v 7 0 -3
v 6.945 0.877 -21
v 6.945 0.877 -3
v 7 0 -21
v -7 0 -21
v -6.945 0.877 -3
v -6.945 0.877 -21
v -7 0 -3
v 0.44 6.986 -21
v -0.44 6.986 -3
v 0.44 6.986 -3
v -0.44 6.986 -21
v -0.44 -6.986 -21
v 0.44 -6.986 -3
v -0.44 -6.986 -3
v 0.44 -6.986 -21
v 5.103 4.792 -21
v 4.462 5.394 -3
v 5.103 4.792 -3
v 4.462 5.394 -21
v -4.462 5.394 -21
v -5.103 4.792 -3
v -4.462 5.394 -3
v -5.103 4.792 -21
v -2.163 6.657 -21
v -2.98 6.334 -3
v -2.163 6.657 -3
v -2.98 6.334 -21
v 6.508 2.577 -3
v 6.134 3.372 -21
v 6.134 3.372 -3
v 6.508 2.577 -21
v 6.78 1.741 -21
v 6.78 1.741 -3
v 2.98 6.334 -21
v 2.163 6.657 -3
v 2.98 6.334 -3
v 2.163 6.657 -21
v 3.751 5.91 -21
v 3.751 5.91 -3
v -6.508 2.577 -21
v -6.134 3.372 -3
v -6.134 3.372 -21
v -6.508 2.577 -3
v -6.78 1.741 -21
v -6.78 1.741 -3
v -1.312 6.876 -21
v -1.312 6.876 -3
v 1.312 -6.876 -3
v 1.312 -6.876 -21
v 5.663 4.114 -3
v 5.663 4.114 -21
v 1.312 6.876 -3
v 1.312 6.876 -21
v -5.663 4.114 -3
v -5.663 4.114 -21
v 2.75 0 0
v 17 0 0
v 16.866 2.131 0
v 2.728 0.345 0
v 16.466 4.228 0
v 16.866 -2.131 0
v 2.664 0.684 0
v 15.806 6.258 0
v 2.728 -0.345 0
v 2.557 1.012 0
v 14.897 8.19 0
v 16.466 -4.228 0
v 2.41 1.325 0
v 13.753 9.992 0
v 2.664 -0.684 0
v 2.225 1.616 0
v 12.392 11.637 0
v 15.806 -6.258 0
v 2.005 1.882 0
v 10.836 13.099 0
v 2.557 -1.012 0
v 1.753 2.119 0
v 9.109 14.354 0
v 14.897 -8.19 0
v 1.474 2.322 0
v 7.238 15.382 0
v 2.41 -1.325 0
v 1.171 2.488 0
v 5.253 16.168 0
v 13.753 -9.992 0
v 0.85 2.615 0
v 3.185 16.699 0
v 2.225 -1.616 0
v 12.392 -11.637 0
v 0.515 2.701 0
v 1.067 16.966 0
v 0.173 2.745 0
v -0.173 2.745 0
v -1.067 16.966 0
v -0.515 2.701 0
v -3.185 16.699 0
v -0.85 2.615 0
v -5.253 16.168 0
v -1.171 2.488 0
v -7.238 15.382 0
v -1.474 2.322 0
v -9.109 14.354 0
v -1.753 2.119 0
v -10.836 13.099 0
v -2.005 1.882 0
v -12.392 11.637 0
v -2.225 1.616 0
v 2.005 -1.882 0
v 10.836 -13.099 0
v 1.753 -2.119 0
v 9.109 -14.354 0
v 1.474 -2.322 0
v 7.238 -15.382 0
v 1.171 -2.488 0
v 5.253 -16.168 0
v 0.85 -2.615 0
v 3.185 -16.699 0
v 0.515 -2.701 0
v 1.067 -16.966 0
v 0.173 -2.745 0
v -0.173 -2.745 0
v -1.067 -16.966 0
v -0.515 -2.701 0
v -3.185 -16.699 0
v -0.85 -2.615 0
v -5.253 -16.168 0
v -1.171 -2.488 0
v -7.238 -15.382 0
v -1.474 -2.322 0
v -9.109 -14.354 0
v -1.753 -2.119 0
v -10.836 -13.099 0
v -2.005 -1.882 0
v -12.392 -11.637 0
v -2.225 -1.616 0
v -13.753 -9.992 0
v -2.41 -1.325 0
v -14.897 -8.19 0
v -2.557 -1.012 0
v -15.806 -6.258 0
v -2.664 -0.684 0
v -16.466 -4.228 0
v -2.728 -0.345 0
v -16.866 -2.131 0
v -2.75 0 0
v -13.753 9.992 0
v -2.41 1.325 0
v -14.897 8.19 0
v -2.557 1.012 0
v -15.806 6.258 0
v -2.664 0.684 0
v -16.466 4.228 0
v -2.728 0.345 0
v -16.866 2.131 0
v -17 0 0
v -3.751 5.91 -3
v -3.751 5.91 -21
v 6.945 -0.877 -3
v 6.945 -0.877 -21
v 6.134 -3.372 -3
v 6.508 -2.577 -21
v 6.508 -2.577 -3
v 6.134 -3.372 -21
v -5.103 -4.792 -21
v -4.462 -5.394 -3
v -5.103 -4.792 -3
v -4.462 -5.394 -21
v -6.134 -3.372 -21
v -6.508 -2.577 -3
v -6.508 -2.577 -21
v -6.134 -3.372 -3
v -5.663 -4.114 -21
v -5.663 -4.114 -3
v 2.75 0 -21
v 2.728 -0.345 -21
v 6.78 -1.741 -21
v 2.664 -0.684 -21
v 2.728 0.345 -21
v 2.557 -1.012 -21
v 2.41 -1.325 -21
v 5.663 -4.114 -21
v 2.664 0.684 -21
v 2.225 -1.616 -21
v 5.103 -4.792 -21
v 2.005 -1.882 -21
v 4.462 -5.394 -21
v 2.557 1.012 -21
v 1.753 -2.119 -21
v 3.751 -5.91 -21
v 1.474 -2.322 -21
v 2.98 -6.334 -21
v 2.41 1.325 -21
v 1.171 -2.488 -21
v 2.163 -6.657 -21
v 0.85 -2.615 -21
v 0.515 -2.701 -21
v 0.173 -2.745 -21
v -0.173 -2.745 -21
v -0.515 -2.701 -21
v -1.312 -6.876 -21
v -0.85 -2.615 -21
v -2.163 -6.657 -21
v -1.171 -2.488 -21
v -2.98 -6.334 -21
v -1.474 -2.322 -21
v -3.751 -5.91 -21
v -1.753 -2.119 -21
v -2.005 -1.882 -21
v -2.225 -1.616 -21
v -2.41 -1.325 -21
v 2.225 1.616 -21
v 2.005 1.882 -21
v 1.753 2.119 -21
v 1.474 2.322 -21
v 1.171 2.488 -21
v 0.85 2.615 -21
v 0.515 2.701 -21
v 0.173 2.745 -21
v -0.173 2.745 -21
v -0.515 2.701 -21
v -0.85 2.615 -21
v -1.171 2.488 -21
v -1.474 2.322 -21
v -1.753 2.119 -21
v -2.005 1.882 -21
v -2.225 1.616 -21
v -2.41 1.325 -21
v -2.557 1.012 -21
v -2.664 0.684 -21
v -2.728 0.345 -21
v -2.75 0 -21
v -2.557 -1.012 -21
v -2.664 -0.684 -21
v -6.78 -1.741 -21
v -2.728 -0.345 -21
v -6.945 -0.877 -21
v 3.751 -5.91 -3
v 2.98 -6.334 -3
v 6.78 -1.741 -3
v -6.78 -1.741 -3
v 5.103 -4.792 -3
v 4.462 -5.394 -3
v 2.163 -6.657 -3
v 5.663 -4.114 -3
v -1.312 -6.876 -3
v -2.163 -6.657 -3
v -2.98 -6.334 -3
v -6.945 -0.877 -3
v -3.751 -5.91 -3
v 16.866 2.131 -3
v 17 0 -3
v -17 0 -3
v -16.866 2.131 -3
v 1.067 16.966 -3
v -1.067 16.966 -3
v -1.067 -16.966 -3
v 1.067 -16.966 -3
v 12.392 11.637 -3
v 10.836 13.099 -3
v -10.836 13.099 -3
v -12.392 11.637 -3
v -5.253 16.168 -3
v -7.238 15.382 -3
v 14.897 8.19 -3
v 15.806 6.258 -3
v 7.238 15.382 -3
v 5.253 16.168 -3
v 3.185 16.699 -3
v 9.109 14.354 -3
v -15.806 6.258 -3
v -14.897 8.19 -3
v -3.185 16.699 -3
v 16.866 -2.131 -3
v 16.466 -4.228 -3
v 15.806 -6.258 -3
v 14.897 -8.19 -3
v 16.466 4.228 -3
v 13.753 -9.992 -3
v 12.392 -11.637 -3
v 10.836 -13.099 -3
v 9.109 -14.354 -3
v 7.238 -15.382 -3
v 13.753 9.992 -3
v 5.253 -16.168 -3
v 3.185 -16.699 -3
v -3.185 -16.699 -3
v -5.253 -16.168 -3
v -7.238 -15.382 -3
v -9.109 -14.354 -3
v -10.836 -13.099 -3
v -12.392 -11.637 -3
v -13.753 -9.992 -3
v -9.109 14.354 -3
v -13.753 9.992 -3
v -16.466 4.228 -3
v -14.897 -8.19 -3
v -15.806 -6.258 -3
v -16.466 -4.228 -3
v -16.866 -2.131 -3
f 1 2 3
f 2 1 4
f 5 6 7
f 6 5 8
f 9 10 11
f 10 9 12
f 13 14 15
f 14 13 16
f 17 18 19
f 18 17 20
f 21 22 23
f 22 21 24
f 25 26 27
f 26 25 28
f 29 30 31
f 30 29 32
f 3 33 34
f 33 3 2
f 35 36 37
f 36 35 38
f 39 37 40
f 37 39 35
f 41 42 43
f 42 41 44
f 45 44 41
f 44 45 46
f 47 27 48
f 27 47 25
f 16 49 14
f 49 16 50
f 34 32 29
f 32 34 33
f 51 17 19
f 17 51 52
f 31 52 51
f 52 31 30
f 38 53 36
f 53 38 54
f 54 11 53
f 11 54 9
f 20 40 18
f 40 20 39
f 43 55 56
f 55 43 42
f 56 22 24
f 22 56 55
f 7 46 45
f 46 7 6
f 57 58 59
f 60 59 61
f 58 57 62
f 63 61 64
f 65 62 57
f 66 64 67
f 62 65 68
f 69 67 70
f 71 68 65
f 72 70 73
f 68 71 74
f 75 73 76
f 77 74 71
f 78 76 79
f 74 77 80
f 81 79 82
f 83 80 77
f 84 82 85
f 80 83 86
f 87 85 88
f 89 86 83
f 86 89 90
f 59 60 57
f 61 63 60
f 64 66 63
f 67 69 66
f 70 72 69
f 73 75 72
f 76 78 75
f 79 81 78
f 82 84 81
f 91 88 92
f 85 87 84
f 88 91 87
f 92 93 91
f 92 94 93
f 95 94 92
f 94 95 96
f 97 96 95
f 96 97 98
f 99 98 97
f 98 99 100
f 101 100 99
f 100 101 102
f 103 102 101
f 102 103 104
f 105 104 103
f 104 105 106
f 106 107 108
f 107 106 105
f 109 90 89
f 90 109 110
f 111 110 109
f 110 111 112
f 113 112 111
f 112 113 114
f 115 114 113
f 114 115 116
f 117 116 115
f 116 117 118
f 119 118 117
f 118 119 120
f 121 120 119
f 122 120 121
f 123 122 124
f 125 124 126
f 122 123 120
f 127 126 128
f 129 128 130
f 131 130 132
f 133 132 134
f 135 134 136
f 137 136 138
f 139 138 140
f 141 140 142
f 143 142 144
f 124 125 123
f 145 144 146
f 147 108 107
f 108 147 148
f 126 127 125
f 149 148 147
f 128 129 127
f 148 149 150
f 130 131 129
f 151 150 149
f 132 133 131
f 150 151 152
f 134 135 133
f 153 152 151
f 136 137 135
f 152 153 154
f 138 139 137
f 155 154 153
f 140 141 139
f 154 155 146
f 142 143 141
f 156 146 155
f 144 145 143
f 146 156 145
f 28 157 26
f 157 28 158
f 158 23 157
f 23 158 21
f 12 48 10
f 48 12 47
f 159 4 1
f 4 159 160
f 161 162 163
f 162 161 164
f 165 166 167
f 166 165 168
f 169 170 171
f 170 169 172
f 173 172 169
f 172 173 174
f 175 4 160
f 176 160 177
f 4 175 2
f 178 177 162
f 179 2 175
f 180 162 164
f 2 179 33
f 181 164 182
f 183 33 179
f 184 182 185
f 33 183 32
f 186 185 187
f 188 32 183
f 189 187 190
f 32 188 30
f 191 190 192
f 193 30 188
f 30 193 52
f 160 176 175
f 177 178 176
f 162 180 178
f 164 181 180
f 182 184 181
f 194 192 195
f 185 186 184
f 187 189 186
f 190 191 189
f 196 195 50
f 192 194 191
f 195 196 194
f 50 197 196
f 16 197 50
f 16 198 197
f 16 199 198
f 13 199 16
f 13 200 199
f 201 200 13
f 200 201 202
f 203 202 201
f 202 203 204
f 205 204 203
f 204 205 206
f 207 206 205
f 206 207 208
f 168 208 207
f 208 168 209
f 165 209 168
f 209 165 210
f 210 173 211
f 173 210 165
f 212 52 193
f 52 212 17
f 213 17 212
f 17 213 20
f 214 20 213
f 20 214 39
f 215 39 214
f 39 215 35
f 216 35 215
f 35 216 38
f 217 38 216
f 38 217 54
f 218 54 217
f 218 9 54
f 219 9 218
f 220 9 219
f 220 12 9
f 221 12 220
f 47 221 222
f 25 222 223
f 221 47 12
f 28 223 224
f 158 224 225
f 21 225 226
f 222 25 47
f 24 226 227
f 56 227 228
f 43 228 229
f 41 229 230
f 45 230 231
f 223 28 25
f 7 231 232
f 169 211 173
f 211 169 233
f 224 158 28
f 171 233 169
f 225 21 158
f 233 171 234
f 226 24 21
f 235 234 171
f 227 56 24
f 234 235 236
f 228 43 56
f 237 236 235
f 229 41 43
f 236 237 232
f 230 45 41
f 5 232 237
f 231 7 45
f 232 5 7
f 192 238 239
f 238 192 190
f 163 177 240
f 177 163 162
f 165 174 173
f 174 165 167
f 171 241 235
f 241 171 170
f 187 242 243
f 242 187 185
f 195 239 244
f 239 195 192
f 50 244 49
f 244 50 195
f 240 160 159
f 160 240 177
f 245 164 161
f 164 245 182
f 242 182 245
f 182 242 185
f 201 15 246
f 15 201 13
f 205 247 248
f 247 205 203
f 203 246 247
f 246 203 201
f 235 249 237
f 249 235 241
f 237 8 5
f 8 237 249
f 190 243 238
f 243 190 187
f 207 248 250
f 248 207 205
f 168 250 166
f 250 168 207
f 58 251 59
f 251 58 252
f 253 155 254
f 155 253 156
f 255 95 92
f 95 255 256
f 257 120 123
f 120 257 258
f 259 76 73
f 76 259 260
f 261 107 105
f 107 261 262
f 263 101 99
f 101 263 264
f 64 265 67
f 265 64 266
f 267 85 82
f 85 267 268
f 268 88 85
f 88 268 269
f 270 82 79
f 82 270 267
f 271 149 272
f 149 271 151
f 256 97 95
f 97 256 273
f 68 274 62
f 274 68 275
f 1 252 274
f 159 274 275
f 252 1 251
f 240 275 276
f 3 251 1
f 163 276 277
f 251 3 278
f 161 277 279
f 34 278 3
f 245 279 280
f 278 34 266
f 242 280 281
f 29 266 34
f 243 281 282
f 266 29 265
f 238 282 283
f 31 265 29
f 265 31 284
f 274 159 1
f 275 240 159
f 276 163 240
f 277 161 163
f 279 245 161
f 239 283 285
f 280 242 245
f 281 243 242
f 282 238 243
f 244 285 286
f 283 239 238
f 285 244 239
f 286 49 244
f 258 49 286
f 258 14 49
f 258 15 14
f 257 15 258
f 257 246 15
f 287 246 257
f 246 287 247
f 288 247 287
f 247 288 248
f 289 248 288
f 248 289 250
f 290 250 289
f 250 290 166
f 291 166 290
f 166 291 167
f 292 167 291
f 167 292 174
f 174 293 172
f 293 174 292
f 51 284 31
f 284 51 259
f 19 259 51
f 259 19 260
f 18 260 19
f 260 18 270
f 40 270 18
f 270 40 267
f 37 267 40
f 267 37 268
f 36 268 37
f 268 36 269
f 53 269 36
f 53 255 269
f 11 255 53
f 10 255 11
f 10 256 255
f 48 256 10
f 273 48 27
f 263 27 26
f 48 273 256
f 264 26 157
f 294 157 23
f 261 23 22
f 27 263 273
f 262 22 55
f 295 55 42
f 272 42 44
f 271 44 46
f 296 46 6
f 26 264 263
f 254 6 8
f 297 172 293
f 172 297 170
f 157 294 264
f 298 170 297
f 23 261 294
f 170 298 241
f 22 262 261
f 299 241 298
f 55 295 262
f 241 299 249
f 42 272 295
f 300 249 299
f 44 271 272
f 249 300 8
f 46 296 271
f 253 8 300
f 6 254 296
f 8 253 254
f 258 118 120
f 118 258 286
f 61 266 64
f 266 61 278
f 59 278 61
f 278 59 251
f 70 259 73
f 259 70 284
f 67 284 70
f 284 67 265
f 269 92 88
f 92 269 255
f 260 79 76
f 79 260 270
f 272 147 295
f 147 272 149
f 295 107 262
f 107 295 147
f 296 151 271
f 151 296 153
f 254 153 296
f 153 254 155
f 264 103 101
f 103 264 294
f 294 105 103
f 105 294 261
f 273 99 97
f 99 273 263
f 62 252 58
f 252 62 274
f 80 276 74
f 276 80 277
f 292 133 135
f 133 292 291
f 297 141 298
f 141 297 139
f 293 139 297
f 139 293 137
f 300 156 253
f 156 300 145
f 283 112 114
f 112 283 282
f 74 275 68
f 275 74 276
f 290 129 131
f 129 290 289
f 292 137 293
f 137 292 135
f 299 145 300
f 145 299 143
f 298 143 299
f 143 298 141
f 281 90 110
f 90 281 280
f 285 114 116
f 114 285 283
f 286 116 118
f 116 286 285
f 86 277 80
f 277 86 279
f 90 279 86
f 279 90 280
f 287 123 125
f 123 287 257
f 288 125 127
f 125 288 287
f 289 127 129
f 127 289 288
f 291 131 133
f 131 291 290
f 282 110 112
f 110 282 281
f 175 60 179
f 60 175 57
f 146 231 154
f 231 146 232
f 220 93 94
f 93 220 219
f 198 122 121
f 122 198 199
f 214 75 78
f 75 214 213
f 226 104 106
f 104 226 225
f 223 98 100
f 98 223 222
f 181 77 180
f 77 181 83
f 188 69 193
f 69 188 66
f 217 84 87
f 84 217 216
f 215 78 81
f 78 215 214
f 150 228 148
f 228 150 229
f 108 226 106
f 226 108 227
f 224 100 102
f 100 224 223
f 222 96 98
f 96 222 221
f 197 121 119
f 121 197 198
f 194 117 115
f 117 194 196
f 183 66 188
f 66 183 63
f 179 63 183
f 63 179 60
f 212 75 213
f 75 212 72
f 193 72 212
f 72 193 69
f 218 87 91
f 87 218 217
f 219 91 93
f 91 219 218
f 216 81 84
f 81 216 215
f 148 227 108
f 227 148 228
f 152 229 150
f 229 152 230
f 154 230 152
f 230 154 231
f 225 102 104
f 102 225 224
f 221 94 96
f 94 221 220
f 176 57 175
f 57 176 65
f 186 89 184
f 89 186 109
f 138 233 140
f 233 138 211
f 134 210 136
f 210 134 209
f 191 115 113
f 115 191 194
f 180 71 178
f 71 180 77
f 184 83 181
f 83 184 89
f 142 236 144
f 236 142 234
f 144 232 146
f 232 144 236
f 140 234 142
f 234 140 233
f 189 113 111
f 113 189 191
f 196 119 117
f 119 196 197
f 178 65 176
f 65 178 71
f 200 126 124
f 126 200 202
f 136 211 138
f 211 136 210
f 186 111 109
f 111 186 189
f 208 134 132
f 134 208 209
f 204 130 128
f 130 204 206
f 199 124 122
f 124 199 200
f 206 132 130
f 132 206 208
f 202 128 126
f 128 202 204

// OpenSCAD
$fn = 50;


difference() {
	union() {
		translate(v = [0, 0, -21.0000000000]) {
			cylinder(h = 21, r = 7.0000000000);
		}
		translate(v = [0, 0, -3.0000000000]) {
			cylinder(h = 3, r = 17.0000000000);
		}
	}
	union() {
		#translate(v = [0, 0, -21]) {
			cylinder(h = 21, r = 2.7500000000);
		}
	}
}
